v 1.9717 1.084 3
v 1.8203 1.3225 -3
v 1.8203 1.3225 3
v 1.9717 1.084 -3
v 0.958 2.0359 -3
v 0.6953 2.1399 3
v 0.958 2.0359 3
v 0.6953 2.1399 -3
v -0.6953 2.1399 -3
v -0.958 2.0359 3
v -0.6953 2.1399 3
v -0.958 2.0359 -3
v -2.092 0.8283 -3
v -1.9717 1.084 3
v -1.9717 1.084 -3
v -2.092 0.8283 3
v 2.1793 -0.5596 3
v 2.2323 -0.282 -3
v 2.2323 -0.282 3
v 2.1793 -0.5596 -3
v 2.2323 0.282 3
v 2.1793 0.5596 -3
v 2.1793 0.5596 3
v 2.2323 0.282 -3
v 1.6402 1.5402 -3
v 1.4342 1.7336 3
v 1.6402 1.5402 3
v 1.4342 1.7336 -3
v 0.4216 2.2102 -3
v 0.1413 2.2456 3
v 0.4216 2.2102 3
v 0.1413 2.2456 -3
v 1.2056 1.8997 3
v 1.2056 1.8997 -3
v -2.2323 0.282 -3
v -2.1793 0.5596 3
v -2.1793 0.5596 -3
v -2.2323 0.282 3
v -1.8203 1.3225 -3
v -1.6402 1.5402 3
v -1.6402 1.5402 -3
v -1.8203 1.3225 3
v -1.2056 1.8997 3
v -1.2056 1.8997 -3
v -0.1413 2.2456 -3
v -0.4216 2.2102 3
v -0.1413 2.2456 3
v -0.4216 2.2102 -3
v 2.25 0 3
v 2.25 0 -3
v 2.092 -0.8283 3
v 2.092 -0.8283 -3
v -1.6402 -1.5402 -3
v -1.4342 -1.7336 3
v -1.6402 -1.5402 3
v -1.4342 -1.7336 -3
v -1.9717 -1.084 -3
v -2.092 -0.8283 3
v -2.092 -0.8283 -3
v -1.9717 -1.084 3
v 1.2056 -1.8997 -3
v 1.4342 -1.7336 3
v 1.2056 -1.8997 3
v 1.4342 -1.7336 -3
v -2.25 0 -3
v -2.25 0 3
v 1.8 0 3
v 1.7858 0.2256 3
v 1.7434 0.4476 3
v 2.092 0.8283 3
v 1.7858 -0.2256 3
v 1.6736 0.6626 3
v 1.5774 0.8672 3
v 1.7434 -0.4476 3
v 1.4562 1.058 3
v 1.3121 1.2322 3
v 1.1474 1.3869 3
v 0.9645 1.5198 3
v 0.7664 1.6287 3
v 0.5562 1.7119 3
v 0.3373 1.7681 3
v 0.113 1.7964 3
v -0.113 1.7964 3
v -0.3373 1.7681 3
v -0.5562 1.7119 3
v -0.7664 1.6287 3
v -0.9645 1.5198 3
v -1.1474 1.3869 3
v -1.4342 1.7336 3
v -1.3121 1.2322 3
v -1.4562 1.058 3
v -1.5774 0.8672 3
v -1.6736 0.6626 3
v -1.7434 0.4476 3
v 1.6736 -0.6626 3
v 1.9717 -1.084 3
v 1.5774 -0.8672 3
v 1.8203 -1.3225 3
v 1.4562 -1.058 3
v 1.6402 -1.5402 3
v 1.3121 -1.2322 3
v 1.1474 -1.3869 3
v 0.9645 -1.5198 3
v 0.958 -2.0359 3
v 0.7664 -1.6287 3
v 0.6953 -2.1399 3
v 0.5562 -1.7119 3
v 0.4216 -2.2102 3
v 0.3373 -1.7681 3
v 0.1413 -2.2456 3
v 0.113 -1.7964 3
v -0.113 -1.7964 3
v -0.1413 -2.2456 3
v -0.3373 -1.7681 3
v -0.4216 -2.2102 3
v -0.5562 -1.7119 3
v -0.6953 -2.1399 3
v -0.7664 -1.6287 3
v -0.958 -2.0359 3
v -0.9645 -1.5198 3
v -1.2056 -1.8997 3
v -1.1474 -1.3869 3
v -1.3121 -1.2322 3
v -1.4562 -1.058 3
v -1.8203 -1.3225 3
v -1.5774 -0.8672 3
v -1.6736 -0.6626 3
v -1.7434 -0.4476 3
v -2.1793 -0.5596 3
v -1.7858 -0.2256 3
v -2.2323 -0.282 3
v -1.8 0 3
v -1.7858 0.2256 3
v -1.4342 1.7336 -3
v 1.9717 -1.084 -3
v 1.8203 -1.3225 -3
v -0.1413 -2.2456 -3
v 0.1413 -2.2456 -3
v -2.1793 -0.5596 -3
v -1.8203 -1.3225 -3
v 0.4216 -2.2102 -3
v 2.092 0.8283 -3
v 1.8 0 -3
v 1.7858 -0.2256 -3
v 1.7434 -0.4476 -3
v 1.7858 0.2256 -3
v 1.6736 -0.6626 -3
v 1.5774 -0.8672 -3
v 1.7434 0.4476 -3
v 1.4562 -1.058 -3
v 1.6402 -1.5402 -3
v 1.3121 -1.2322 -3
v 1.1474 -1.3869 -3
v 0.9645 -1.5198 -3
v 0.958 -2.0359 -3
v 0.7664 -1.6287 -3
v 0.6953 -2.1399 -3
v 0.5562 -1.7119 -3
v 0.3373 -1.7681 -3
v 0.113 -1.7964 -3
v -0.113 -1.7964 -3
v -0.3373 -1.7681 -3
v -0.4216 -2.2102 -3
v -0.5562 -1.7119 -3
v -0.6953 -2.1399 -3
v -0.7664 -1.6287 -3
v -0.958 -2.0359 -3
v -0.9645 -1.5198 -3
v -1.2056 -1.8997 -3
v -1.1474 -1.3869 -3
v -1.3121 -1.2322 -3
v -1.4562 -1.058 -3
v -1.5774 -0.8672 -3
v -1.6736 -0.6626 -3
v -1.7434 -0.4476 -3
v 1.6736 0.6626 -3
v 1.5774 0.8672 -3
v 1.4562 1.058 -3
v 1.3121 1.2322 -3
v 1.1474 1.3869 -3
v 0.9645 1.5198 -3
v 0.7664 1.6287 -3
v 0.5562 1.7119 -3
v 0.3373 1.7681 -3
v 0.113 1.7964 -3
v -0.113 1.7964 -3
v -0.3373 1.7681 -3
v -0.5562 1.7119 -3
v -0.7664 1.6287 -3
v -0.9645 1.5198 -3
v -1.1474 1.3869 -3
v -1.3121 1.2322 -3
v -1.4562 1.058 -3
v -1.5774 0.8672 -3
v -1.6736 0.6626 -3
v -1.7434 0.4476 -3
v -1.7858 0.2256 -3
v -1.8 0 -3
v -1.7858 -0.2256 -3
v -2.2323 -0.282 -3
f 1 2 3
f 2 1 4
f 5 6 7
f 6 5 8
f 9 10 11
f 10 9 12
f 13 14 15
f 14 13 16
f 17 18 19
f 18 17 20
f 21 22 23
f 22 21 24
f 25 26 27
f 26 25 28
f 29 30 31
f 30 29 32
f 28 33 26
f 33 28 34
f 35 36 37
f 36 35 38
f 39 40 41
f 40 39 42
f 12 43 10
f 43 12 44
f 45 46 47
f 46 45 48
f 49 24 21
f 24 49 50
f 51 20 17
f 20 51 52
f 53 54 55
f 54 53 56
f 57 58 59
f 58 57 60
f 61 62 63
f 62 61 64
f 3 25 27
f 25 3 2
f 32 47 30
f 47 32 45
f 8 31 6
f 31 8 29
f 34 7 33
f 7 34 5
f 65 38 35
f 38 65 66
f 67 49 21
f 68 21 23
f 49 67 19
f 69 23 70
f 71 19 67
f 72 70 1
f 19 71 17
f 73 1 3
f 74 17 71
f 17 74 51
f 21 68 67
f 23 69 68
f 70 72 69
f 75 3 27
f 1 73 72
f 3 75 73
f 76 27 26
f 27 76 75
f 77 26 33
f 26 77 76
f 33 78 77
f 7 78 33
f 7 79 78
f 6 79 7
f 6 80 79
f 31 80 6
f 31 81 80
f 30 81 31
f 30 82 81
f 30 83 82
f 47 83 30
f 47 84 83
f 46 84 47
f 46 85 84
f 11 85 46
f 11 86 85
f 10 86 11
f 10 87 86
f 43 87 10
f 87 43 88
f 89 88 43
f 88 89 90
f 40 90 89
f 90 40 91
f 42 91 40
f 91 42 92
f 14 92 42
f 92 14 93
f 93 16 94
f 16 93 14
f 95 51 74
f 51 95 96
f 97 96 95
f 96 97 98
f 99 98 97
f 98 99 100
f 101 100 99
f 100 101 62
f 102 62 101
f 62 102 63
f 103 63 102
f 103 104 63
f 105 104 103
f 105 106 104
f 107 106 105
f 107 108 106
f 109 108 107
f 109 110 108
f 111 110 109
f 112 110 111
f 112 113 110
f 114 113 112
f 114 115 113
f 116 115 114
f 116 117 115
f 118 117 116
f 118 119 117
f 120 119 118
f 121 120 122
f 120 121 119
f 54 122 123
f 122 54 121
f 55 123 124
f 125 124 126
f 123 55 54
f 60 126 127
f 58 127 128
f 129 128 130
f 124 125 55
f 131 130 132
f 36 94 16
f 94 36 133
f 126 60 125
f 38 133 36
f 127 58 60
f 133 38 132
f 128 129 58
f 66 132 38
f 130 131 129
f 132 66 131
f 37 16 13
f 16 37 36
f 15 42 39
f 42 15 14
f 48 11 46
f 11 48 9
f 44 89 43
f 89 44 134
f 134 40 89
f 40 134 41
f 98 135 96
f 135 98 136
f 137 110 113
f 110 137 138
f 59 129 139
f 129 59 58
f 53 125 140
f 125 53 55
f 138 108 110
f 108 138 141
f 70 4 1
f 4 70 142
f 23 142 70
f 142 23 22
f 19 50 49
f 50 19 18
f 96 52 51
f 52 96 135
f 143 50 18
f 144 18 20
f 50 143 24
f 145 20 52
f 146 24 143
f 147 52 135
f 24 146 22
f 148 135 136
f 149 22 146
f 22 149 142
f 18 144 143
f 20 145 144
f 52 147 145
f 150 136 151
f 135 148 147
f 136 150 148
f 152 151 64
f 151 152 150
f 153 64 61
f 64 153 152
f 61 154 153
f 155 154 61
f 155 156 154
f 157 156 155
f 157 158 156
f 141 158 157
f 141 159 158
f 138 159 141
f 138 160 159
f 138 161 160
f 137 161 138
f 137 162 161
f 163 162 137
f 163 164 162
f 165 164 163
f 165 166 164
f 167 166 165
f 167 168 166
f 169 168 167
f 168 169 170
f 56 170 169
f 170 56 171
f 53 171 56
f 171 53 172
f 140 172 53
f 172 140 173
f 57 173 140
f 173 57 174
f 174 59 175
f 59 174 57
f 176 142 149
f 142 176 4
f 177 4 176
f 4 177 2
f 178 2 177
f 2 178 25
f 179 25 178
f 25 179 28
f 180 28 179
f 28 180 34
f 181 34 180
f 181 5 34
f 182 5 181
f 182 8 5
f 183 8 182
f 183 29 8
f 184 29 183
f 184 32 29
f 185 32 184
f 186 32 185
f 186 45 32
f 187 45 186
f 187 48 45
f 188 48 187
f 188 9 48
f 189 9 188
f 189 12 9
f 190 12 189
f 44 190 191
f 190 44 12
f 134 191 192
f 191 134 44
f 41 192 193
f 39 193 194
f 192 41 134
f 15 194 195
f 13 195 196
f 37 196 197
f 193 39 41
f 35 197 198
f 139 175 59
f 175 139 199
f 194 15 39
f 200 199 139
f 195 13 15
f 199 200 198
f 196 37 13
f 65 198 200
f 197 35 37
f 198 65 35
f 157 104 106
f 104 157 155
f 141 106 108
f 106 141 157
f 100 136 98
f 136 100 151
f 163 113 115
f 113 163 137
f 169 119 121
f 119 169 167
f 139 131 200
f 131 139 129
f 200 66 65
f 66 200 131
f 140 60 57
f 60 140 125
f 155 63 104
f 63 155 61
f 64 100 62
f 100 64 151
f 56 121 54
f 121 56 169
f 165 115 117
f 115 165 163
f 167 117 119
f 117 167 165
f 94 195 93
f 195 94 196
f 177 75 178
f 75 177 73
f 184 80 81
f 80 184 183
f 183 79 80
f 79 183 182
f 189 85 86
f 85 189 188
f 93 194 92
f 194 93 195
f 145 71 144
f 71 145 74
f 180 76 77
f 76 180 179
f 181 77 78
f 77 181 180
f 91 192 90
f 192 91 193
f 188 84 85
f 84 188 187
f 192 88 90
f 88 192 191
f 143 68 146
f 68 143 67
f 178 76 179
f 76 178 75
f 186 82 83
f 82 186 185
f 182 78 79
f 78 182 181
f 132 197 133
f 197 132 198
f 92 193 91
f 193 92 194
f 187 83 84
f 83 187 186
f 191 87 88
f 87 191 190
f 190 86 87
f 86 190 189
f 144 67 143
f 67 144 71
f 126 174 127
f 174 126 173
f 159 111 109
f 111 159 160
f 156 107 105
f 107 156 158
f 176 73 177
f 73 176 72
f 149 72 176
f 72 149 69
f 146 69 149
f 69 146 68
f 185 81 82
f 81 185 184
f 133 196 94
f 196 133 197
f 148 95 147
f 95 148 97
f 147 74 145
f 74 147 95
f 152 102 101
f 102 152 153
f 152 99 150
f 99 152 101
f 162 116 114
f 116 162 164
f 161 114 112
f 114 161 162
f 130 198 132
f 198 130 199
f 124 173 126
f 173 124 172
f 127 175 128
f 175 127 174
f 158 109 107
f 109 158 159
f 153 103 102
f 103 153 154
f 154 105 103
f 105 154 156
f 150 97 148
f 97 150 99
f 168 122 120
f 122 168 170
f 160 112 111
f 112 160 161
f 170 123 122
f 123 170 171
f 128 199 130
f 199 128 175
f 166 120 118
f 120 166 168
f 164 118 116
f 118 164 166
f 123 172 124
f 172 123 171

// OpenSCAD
$fn = 50;


difference() {
	union() {
		translate(v = [0, 0, -3.0000000000]) {
			cylinder(h = 6, r = 2.2500000000);
		}
	}
	union() {
		translate(v = [0, 0, -100.0000000000]) {
			cylinder(h = 200, r = 1.8000000000);
		}
	}
}
